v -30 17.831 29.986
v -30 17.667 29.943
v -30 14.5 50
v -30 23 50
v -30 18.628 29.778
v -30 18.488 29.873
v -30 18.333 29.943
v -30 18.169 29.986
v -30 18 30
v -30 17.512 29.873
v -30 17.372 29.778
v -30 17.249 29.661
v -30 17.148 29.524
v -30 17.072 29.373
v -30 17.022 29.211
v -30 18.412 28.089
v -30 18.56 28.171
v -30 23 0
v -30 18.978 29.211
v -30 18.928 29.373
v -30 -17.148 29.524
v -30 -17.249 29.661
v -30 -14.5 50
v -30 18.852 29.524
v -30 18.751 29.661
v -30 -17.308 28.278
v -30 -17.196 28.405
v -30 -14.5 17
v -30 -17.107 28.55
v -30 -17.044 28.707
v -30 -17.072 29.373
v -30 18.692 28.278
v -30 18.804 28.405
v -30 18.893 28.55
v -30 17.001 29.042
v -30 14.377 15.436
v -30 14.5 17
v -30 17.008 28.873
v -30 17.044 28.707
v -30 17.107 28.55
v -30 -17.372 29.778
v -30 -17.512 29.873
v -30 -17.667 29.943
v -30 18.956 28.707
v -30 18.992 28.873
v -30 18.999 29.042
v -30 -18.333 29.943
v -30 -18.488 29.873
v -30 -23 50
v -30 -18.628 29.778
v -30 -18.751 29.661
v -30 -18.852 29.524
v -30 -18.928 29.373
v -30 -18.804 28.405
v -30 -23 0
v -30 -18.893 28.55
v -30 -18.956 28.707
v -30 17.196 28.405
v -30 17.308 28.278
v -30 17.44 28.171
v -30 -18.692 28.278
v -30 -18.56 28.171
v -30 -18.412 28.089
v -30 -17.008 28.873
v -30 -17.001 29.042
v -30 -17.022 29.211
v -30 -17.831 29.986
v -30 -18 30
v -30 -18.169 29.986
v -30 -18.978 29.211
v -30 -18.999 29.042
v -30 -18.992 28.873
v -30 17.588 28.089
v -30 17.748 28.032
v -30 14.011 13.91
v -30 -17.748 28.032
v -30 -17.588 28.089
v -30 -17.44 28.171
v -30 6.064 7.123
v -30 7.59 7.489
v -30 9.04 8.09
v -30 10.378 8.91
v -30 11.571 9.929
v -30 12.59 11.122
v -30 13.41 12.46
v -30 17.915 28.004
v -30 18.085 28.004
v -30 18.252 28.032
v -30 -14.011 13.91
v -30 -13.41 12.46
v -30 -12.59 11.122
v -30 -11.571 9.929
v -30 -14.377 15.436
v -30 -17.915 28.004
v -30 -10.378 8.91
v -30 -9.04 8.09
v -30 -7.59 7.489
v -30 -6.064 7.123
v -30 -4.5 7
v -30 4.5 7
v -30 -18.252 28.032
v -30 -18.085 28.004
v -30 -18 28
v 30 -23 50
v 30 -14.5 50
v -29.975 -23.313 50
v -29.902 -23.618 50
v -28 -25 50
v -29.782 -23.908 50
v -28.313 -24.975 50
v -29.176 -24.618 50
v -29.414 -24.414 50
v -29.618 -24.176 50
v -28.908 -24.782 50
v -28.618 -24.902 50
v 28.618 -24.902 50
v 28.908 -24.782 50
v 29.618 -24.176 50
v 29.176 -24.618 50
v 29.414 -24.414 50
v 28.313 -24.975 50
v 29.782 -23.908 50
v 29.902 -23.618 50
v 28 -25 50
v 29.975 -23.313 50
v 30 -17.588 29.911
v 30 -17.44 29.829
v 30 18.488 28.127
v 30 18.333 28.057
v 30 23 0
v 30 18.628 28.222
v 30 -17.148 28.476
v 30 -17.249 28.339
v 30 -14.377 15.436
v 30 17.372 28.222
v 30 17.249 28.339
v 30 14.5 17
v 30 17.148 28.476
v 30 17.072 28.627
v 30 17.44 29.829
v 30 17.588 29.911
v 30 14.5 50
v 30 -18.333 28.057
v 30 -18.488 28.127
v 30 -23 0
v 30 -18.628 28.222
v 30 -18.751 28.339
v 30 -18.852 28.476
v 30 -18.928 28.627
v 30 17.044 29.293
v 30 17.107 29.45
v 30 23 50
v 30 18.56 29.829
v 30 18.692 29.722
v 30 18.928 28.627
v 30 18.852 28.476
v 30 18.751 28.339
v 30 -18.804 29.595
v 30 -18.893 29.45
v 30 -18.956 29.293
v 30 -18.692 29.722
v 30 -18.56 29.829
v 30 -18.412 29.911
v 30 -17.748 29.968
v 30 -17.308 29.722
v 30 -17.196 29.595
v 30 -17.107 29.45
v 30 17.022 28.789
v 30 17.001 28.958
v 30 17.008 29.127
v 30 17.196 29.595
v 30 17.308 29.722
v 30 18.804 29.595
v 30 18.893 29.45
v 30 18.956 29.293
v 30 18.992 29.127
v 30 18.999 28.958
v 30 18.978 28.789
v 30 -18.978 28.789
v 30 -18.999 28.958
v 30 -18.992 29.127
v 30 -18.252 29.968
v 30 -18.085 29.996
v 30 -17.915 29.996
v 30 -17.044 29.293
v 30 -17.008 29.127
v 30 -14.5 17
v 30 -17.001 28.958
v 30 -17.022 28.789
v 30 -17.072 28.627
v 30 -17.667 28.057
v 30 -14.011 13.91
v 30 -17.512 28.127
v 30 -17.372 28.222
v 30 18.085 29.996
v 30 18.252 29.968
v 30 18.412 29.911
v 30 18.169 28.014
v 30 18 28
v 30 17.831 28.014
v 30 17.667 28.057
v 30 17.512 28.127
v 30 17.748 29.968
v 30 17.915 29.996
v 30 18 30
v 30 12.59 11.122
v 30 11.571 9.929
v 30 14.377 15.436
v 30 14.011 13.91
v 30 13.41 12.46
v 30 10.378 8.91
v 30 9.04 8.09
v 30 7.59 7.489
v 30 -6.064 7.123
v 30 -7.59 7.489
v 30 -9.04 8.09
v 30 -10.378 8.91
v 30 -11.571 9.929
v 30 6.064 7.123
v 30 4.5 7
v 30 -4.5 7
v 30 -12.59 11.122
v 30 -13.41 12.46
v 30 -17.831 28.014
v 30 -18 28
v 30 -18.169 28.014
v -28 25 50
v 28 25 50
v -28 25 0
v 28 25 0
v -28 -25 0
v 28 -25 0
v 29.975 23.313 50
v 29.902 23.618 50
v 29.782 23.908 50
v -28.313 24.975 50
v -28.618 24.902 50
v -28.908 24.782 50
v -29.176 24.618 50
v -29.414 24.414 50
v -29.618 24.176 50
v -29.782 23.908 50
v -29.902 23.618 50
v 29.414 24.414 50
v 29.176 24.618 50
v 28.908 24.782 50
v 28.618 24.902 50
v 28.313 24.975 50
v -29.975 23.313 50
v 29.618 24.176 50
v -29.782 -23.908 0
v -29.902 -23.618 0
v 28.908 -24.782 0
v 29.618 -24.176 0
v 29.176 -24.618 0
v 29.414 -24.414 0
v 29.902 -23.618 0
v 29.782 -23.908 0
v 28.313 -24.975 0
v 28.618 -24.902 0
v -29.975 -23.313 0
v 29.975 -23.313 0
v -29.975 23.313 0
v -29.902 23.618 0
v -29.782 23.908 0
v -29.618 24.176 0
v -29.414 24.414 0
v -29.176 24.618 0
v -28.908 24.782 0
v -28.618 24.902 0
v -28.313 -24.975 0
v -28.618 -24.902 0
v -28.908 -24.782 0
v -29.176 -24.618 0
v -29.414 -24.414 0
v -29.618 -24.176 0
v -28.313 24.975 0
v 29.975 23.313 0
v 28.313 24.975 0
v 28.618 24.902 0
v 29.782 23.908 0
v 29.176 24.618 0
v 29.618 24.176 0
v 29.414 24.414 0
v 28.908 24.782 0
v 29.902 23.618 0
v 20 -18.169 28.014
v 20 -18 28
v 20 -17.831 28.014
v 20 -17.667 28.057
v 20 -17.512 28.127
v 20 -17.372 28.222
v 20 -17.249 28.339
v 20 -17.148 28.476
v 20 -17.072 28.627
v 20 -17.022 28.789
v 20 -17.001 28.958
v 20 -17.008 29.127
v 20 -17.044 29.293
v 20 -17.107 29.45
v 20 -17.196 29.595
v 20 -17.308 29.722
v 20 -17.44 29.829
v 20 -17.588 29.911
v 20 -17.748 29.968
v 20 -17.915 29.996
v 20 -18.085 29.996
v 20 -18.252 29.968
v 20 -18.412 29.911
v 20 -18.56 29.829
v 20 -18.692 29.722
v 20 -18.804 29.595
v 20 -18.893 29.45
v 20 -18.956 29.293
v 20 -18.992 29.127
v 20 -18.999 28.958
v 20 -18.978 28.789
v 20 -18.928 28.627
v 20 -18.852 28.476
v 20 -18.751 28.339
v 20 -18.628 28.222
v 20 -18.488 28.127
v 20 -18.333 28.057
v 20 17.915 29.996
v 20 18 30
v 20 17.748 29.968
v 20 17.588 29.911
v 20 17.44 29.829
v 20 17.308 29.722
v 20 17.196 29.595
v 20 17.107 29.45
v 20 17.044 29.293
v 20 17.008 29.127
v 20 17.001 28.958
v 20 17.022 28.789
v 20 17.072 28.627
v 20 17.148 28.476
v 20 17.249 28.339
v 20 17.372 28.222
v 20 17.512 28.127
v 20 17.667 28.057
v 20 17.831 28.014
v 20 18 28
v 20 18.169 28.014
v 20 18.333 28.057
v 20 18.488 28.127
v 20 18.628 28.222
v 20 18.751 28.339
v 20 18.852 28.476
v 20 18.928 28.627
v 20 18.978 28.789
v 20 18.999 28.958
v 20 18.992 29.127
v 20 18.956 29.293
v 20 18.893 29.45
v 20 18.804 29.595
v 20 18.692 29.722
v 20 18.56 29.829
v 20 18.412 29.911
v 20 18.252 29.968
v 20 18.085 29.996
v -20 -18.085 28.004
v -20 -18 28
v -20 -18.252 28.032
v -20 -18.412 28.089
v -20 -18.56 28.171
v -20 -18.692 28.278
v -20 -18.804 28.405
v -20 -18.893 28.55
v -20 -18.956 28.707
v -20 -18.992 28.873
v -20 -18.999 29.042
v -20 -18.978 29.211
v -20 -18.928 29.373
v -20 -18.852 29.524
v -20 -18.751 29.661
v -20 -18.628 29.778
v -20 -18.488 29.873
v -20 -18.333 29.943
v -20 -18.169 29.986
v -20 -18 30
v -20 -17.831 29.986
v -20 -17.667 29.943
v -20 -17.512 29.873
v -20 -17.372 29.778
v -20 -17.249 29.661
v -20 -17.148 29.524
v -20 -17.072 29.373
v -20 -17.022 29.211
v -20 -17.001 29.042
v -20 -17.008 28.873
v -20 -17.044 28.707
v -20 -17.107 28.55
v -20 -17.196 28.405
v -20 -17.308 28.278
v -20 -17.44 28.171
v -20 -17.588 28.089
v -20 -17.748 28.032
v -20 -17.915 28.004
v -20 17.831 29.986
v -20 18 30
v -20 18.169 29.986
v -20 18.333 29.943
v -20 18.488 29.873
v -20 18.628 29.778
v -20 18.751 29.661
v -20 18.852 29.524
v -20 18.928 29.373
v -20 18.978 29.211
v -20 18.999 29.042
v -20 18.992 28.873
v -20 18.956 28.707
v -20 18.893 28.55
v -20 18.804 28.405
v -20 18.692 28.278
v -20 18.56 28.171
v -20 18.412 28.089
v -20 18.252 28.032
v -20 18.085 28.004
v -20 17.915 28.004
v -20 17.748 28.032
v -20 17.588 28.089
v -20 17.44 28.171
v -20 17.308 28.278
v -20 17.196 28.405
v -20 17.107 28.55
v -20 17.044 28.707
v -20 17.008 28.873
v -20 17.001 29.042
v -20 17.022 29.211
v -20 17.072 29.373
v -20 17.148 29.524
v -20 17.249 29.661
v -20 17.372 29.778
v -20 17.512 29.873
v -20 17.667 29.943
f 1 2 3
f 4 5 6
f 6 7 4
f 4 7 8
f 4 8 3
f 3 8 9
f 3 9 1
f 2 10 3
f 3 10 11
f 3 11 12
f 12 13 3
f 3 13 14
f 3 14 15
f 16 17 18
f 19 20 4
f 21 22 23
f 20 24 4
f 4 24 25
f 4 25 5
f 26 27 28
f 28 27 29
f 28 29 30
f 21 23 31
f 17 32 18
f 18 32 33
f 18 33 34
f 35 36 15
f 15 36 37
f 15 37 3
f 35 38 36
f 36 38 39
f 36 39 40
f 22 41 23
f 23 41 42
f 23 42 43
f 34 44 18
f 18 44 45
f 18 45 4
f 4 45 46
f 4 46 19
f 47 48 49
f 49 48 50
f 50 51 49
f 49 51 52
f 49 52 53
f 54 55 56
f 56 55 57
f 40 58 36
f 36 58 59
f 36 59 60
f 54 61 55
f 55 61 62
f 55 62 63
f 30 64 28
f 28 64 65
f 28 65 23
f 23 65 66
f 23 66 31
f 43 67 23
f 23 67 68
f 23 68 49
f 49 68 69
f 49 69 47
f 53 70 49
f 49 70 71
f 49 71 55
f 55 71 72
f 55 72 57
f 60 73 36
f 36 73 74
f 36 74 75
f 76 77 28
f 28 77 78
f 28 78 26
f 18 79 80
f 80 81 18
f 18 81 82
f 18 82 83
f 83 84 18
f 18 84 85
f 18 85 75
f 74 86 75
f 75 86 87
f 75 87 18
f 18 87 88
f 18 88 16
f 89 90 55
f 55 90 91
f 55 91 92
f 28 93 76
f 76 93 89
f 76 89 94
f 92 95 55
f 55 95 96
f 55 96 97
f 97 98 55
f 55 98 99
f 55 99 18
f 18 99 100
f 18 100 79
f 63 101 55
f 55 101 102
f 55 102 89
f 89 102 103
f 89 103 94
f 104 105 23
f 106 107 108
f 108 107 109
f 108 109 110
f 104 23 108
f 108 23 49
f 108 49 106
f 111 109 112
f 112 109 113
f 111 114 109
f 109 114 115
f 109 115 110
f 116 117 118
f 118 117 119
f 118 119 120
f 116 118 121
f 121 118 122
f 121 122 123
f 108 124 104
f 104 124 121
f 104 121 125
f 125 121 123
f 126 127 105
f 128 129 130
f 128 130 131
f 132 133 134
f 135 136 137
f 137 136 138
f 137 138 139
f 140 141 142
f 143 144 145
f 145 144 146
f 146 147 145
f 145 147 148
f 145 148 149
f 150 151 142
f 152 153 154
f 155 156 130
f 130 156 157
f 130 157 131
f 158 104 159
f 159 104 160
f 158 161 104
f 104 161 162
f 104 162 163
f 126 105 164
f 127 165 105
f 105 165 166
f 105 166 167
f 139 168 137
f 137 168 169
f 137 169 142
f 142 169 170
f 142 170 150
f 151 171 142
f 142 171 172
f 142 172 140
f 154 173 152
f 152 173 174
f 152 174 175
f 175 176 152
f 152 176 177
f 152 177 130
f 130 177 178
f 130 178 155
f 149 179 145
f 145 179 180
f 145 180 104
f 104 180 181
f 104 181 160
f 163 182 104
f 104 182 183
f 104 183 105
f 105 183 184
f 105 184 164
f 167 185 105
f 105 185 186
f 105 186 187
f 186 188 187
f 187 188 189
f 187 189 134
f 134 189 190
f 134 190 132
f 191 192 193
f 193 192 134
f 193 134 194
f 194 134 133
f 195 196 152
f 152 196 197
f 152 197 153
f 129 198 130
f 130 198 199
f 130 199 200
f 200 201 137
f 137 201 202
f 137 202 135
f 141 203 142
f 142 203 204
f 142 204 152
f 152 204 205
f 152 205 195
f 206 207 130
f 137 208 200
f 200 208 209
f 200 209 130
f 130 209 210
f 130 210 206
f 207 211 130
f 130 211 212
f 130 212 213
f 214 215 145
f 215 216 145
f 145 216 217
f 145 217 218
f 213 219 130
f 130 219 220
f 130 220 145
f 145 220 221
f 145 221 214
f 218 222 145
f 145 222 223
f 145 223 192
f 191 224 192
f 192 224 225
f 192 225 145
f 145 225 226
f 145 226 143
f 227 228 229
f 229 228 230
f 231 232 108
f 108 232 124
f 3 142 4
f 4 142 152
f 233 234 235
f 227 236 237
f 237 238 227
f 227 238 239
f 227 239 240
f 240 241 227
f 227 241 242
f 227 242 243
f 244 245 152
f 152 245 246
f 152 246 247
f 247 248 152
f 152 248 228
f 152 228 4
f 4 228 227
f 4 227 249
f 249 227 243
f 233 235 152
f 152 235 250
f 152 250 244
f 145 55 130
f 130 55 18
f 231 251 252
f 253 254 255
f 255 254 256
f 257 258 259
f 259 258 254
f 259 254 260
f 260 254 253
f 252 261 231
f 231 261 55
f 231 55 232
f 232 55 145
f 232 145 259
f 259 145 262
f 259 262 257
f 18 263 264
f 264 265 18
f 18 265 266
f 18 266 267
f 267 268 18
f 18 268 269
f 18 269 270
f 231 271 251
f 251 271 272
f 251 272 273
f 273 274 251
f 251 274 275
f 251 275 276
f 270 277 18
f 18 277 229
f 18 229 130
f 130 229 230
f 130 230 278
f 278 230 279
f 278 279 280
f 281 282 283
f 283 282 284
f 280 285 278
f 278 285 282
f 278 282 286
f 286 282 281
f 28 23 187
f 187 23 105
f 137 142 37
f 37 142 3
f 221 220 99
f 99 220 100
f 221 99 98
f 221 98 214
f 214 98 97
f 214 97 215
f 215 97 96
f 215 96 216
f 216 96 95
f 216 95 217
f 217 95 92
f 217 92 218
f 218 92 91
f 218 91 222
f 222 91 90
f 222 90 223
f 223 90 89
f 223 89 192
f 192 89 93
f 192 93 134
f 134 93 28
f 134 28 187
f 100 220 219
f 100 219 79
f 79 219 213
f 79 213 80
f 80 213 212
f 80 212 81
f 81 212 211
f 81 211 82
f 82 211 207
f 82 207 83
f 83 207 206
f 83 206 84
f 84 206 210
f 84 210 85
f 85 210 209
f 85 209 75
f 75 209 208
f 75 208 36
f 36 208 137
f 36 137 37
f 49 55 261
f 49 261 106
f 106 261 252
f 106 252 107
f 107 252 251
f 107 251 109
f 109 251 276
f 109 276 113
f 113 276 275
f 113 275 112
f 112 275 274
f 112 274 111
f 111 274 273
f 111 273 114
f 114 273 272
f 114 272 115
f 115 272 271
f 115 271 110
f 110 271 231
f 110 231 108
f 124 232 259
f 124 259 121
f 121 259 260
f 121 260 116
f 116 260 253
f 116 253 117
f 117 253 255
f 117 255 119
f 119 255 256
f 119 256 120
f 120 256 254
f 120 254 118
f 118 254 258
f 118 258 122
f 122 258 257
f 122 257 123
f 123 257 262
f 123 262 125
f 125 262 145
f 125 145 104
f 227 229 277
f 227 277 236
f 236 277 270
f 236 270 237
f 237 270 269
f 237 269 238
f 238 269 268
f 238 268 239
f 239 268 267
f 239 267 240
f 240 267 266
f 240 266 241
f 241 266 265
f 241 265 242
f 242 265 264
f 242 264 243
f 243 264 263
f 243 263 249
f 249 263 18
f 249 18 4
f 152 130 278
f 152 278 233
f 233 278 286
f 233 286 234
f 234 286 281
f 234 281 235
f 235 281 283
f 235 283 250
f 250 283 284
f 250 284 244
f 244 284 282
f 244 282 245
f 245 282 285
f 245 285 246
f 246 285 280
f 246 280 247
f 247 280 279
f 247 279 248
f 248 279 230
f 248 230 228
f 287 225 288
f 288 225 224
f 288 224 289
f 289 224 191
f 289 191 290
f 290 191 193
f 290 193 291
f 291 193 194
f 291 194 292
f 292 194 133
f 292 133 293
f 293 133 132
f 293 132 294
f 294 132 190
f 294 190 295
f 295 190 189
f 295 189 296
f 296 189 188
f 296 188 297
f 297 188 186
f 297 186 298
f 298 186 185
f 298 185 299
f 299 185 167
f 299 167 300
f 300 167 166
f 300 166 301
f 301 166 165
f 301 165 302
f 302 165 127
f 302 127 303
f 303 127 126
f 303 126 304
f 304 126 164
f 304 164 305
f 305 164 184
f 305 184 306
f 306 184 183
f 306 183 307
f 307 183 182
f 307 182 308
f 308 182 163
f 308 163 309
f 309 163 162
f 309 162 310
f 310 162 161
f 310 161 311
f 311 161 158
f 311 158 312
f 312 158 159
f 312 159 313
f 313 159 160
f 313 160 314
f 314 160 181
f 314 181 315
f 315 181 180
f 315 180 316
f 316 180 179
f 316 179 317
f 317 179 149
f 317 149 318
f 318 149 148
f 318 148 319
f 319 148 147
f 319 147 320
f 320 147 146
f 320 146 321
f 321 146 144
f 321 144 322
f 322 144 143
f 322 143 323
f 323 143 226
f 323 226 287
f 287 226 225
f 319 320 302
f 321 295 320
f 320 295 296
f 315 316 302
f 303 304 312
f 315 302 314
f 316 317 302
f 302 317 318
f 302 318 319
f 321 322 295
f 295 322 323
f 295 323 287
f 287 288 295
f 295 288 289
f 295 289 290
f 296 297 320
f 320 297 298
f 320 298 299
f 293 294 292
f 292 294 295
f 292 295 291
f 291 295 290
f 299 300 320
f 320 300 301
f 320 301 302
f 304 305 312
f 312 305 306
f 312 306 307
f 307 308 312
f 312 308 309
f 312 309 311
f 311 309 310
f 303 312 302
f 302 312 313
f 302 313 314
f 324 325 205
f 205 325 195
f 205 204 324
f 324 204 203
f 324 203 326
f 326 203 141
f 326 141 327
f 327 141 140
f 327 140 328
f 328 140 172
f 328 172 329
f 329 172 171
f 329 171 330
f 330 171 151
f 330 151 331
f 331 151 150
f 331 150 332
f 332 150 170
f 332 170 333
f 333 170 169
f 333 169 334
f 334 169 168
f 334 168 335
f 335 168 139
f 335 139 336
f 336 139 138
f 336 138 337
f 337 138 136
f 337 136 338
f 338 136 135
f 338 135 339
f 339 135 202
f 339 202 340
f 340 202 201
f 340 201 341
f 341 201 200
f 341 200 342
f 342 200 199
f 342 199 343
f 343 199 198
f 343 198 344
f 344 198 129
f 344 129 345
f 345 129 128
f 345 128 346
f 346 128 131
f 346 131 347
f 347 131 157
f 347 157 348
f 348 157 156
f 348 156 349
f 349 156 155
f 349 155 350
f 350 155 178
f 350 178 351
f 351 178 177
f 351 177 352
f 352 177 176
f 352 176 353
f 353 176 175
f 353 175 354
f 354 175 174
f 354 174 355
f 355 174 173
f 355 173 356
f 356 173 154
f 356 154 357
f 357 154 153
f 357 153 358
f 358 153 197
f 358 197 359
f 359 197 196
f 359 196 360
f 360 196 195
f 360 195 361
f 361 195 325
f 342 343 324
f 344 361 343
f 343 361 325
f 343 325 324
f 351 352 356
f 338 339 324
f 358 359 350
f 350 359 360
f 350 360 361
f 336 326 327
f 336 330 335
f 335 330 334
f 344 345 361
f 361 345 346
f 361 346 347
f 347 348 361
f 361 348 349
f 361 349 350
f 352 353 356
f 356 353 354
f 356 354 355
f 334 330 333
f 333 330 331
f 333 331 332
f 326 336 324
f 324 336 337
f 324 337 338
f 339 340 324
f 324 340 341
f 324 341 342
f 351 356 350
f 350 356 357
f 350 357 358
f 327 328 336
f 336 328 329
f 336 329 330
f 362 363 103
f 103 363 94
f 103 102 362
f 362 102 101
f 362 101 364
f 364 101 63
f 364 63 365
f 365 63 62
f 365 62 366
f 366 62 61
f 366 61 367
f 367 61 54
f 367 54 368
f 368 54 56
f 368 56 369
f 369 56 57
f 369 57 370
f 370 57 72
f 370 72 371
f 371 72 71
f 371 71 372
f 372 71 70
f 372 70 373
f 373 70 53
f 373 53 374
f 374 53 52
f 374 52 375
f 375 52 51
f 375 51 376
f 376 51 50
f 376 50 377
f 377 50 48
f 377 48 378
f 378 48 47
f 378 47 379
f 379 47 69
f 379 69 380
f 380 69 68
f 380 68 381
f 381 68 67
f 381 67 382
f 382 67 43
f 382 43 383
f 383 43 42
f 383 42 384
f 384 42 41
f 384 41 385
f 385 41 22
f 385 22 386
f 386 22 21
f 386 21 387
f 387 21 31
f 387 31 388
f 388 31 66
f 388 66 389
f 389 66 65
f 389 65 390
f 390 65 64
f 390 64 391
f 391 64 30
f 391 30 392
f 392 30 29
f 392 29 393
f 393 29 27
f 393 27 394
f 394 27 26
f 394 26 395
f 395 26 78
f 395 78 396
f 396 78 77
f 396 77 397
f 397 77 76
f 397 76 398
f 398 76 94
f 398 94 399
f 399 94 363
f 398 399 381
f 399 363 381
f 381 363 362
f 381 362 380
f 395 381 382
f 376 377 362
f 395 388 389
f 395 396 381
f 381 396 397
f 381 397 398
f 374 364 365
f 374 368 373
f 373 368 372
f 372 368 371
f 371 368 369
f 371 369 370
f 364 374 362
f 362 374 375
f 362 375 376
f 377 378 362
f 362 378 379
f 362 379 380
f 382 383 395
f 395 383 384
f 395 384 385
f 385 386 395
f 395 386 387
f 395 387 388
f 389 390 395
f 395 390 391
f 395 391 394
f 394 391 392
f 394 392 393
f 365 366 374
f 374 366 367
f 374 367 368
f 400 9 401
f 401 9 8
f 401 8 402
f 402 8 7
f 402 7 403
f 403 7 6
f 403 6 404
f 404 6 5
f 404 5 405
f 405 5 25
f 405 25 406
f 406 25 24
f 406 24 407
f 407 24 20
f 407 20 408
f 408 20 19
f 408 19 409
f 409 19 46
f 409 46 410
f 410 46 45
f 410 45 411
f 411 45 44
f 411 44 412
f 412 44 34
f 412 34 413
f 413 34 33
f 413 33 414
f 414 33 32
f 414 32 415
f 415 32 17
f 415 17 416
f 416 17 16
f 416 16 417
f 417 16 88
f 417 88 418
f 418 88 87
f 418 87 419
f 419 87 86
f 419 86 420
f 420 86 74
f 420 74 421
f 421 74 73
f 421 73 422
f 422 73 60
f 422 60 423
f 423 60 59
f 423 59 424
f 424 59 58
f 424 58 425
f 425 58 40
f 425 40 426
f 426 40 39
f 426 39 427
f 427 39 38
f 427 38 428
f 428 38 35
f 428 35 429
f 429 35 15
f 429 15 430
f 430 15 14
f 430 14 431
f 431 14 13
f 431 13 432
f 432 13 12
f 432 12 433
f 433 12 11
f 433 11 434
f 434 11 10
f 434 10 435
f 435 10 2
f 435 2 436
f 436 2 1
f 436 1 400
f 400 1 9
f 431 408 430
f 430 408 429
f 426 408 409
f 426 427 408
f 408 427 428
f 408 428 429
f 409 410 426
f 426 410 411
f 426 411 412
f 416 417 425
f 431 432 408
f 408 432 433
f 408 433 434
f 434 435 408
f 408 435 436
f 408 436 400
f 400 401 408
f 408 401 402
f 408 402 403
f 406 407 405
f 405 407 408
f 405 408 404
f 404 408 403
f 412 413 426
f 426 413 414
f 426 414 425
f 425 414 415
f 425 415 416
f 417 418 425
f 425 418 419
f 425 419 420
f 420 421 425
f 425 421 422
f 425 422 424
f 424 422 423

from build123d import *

# Parameters (mm, degrees)
ESBO_O1_W                = 60
ESBO_O1_H                = 50
RESSALTO_EXTRUS_O1_DEPTH = 50
ESBO_O2_W                = 60
ESBO_O2_H                = 29
CORTE_EXTRUS_O1_DEPTH    = 43
FILETE1_R                = 10
FILETE2_R                = 2
ESBO_O3_R                = 1
CORTE_EXTRUS_O2_DEPTH    = 10


with BuildPart() as part:
    # Esboço1 → Ressalto-extrusão1 (new body)
    with BuildSketch(Plane.XY):
        Rectangle(ESBO_O1_W, ESBO_O1_H)
    extrude(amount=RESSALTO_EXTRUS_O1_DEPTH)

    # Esboço2 → Corte-extrusão1 (cut)
    with BuildSketch(Plane.XY.offset(50)):
        Rectangle(ESBO_O2_W, ESBO_O2_H)
    extrude(amount=-CORTE_EXTRUS_O1_DEPTH, mode=Mode.SUBTRACT)

    # Filete1
    filete1_edges = [part.edges().sort_by_distance(p)[0] for p in [
        (0, -14.5, 7),
        (0, 14.5, 7),
    ]]
    fillet(filete1_edges, radius=FILETE1_R)

    # Filete2
    filete2_edges = [part.edges().sort_by_distance(p)[0] for p in [
        (30, -25, 25),
        (-30, -25, 25),
        (-30, 25, 25),
        (30, 25, 25),
    ]]
    fillet(filete2_edges, radius=FILETE2_R)

    # Esboço3 → Corte-extrusão2 (cut)
    with BuildSketch(Plane(origin=(30, 0, 0), x_dir=(0, 0, -1), z_dir=(1, 0, 0))):
        with Locations((-29, -18)):
            Circle(ESBO_O3_R)
        with Locations(Location((-29, 18, 0), (0, 0, 180))):
            Circle(ESBO_O3_R)
    corte_extrus_o2 = extrude(amount=-CORTE_EXTRUS_O2_DEPTH, mode=Mode.SUBTRACT)

    # Espelhar1: Corte-extrusão2 across plane
    add(corte_extrus_o2.mirror(Plane.ZY), mode=Mode.SUBTRACT)


solid = part.part
